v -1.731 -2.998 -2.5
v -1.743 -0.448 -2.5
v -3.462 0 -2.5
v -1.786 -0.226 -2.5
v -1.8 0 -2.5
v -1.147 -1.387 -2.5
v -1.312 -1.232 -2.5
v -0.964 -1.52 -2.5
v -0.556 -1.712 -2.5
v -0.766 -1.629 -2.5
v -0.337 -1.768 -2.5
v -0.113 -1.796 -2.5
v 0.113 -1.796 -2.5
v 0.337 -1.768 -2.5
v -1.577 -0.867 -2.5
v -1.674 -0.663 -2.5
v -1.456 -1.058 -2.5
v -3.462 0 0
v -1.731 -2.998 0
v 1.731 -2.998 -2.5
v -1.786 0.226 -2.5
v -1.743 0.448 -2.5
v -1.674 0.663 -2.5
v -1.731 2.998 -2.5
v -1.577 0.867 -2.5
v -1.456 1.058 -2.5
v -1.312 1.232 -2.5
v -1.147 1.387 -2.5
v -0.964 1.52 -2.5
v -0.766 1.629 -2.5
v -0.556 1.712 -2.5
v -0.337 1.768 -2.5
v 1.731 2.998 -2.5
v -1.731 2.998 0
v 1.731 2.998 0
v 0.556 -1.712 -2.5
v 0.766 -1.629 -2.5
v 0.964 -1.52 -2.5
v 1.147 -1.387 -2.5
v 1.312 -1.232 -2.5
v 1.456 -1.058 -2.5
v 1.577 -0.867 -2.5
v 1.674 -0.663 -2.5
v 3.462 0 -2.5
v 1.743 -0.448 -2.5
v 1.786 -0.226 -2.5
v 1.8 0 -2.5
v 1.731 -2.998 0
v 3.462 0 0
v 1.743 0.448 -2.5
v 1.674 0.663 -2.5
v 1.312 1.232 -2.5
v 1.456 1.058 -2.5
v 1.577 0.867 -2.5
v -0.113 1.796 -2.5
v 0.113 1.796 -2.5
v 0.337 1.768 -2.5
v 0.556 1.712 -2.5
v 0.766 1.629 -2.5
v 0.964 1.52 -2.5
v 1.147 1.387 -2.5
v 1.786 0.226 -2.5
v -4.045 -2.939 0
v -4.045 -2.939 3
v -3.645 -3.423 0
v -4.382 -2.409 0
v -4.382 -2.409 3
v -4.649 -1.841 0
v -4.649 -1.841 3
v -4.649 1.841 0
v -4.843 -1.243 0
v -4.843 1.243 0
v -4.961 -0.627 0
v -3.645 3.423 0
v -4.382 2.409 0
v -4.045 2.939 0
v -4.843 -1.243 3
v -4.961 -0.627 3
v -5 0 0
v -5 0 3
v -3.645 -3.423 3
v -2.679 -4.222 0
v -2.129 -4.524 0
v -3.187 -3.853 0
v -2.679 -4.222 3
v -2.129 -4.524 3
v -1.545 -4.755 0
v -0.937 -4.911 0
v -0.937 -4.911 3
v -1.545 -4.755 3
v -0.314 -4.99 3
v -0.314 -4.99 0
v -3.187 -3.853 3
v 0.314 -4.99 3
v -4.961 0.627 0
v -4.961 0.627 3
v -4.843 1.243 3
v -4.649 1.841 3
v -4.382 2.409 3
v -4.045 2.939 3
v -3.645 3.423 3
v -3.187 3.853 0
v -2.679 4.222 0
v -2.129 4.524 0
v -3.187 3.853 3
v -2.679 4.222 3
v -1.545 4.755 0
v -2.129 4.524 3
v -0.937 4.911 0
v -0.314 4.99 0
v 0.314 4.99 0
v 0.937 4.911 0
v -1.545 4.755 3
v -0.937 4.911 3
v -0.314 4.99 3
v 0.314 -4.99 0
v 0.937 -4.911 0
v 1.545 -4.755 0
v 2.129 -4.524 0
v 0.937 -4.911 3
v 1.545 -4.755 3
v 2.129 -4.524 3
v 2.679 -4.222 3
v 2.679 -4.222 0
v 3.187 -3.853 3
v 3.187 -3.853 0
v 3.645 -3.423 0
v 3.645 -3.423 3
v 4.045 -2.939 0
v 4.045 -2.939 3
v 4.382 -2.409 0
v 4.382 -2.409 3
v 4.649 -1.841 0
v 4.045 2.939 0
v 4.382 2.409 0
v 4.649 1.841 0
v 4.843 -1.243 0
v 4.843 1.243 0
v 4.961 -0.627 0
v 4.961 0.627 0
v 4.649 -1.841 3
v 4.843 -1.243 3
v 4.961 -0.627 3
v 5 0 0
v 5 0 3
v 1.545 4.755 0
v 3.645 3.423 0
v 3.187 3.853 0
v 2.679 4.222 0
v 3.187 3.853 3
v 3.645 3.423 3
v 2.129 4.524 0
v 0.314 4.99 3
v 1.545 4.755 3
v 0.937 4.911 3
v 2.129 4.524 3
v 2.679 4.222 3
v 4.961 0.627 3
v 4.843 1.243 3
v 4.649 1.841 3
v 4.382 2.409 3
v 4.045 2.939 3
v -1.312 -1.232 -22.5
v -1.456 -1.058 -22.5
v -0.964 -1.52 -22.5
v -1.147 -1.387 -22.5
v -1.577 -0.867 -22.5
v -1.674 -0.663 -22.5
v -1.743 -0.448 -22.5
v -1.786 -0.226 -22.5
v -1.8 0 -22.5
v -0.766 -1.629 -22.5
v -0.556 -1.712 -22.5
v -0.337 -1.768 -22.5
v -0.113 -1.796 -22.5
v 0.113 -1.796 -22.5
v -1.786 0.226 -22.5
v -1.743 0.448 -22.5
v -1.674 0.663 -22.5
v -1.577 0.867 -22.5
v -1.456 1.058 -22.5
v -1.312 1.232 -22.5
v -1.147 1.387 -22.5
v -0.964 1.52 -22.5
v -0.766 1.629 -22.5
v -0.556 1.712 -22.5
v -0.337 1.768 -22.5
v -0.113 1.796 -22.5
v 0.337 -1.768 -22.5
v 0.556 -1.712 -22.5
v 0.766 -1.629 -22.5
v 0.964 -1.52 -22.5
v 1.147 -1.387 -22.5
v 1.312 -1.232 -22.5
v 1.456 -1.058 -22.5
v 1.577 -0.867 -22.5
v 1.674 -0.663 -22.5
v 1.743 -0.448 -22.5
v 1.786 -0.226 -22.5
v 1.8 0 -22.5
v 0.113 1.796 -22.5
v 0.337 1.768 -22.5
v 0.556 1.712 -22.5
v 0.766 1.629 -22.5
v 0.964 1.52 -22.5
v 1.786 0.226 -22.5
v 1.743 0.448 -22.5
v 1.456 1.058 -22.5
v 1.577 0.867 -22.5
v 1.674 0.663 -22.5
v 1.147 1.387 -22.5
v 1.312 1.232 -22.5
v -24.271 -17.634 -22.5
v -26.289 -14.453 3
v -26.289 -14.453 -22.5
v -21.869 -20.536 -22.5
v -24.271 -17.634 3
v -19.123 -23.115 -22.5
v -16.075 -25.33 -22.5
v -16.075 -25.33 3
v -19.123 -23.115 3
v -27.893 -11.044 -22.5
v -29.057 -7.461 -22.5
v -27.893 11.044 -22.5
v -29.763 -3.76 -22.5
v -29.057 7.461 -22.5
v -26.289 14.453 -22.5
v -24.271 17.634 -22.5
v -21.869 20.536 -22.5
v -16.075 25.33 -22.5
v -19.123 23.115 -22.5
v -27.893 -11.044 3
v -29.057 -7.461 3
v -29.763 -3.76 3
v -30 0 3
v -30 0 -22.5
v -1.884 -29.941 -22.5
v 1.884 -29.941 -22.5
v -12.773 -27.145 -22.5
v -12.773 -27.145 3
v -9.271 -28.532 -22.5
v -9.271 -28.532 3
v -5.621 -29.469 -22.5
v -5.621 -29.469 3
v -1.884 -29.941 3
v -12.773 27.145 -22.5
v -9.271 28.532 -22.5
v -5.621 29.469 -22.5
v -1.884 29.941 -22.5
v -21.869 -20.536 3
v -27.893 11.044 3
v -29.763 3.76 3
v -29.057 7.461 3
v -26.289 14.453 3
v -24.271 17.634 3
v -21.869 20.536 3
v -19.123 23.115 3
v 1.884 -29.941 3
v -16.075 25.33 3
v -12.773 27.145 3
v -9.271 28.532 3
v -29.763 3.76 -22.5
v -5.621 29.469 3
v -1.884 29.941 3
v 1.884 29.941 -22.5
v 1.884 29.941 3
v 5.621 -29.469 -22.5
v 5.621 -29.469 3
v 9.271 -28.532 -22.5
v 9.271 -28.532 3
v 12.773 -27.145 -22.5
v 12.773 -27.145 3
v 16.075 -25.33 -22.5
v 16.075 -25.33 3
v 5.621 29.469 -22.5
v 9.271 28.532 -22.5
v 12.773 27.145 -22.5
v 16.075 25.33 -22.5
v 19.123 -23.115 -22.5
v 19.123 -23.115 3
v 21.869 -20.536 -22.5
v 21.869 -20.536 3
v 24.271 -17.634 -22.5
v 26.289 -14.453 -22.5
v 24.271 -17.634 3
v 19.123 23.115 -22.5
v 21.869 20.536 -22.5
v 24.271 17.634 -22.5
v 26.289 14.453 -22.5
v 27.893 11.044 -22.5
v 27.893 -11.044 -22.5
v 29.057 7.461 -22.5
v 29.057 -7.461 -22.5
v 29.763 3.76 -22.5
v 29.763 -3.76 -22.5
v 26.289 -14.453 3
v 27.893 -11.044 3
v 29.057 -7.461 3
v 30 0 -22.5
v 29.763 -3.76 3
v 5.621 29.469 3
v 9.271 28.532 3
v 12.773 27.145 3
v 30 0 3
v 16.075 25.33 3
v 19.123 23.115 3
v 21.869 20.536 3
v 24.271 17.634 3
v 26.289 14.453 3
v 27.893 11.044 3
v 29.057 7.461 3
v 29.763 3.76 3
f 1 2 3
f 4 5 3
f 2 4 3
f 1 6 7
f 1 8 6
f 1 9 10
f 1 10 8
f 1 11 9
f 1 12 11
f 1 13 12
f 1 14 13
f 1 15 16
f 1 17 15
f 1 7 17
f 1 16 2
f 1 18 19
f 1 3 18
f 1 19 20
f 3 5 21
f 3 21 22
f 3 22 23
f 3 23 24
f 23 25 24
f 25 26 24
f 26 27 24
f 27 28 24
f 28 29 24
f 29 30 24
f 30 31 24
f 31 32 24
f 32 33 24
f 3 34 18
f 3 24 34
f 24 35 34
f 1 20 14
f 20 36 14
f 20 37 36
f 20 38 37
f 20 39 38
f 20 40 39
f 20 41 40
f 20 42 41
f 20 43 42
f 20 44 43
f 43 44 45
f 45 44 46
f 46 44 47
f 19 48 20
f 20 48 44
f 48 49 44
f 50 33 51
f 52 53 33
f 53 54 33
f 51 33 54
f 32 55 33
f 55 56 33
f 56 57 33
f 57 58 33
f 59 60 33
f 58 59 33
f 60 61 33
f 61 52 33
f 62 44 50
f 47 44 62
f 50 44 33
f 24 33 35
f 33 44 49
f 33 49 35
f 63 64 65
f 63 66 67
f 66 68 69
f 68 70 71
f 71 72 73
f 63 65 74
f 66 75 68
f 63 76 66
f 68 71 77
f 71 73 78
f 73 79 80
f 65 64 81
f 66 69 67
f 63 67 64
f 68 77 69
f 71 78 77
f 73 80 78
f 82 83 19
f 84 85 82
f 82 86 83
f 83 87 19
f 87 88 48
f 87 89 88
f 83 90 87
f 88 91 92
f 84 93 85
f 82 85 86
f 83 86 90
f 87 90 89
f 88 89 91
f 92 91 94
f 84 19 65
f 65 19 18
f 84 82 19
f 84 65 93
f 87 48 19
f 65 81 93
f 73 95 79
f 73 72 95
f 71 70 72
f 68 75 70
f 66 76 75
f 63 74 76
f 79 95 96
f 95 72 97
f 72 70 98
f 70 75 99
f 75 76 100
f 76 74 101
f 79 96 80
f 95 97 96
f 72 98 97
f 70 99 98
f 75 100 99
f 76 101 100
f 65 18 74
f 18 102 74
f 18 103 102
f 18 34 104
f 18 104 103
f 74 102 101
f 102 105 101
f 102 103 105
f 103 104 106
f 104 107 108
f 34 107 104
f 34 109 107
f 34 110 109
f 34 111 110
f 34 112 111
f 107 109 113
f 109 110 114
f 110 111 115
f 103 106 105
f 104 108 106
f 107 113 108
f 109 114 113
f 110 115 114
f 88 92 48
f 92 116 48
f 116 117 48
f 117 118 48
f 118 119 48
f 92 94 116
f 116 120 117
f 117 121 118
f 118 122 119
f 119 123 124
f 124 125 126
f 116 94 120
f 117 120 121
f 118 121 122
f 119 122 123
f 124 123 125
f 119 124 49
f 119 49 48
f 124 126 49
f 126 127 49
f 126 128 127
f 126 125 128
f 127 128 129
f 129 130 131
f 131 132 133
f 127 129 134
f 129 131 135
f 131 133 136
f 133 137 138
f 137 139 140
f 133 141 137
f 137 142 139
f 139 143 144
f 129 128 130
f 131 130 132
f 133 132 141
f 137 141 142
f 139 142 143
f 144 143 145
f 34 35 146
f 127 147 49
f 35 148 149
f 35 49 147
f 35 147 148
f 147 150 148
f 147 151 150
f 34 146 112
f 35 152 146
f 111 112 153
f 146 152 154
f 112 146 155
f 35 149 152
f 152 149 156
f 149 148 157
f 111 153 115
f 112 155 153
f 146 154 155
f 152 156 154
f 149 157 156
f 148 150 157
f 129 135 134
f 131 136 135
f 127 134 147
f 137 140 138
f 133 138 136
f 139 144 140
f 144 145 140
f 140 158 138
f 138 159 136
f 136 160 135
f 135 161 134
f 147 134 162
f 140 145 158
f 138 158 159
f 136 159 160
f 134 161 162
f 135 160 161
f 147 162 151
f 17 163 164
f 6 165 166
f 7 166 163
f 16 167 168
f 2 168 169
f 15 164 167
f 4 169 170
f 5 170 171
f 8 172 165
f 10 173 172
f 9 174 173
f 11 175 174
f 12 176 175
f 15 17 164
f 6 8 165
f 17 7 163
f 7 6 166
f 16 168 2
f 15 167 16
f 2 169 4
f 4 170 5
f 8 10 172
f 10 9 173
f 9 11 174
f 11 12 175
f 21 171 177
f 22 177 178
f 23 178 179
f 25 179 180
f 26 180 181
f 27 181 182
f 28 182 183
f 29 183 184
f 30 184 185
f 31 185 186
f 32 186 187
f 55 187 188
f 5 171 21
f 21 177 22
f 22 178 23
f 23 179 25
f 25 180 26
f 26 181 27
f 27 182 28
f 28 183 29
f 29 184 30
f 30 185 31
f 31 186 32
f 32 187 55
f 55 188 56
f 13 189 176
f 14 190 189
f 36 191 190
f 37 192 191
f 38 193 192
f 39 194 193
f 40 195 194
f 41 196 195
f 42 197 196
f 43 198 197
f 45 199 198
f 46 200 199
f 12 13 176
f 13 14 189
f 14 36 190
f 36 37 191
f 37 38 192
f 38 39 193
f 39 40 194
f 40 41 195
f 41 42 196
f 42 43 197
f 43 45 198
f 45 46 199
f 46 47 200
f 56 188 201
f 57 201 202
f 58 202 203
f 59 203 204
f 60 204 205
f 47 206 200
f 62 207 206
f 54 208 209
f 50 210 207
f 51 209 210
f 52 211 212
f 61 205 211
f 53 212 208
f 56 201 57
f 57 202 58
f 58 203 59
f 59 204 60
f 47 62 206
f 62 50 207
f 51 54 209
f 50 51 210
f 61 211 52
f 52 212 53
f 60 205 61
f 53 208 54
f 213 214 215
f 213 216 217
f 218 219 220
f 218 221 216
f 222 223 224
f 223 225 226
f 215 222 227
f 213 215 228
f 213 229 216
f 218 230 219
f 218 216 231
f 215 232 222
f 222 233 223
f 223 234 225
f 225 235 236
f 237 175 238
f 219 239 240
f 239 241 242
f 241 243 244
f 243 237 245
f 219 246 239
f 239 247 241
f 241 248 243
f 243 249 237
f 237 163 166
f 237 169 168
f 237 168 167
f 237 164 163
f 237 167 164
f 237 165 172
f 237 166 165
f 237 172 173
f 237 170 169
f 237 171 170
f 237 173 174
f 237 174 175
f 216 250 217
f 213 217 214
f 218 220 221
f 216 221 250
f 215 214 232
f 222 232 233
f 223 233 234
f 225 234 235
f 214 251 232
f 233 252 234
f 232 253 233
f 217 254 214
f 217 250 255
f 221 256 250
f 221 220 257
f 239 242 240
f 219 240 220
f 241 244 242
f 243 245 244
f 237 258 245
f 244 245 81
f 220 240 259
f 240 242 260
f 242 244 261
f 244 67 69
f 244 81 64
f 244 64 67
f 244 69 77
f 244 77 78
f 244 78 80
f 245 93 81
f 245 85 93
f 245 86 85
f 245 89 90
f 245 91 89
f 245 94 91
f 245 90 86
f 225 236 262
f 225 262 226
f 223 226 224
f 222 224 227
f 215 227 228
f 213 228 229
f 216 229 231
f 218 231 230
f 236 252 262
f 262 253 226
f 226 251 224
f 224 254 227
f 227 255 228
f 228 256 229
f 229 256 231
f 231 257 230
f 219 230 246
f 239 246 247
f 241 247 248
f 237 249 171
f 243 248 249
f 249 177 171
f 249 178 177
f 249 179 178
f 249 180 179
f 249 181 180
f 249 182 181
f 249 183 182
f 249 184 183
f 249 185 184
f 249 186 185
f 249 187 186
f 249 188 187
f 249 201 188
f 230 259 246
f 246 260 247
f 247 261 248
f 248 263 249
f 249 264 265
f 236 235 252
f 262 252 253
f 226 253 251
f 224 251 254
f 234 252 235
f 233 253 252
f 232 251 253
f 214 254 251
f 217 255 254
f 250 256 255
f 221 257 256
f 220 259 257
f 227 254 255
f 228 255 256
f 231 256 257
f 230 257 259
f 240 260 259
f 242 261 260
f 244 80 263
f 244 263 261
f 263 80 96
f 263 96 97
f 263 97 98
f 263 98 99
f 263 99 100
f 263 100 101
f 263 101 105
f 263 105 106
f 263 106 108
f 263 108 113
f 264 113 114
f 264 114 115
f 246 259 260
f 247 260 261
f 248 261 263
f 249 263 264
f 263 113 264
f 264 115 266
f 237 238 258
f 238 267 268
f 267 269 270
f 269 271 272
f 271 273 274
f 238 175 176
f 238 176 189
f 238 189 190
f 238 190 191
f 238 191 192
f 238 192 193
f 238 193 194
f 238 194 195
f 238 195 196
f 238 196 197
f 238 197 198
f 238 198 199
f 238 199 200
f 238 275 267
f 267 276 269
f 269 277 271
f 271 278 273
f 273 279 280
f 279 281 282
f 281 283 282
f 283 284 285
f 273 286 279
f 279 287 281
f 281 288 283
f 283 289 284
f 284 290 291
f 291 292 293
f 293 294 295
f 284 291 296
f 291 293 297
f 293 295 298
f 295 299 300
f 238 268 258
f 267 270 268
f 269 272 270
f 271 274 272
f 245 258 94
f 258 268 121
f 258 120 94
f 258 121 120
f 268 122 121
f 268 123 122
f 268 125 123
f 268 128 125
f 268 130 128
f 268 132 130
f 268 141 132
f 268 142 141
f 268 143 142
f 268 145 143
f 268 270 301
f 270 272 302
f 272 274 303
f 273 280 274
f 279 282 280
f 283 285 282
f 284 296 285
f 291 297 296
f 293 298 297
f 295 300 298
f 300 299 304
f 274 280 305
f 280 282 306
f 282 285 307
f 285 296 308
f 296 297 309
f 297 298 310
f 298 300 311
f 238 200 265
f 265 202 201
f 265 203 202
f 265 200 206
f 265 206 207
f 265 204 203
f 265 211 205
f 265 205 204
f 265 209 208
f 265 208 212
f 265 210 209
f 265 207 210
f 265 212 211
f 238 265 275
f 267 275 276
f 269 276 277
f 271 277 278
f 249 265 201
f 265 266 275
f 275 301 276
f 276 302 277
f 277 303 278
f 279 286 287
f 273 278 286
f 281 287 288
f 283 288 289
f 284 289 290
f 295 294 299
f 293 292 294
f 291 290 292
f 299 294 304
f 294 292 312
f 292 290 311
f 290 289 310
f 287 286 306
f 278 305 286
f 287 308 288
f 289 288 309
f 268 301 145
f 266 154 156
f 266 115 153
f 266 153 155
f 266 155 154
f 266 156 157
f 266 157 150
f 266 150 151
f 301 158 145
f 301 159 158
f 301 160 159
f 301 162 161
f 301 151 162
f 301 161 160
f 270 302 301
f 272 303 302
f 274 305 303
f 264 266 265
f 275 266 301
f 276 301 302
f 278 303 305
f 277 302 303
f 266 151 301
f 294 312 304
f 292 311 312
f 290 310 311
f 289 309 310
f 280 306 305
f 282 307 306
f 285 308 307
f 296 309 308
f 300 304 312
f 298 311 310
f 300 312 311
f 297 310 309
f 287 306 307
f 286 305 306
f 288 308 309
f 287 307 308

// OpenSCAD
$fn = 50;

difference() {
	union() {
		translate(v = [0, 0, -22.5]) {
			cylinder(h = 25.5, r = 30.0);
		}
	}
	union() {
		translate(v = [0, 0, 0]) {
			rotate(a = [0, 0, 0]) {
				difference() {
					union() {
						translate(v = [0, 0, -2.5]) {
							linear_extrude(height = 2.5) {
								polygon(points = [[3.4619999999999997, 0.0], [1.7310000000000003, 2.9981799479017264], [-1.7309999999999992, 2.9981799479017264], [-3.4619999999999997, 4.2397272186481365e-16], [-1.7310000000000014, -2.998179947901726], [1.7309999999999977, -2.9981799479017277]]);
							}
						}
					}
					union();
				}
			}
		}
		#cylinder(h = 3, r = 5.0);
		#translate(v = [0, 0, -100.0]) {
			cylinder(h = 200, r = 1.8);
		}
	}
}
